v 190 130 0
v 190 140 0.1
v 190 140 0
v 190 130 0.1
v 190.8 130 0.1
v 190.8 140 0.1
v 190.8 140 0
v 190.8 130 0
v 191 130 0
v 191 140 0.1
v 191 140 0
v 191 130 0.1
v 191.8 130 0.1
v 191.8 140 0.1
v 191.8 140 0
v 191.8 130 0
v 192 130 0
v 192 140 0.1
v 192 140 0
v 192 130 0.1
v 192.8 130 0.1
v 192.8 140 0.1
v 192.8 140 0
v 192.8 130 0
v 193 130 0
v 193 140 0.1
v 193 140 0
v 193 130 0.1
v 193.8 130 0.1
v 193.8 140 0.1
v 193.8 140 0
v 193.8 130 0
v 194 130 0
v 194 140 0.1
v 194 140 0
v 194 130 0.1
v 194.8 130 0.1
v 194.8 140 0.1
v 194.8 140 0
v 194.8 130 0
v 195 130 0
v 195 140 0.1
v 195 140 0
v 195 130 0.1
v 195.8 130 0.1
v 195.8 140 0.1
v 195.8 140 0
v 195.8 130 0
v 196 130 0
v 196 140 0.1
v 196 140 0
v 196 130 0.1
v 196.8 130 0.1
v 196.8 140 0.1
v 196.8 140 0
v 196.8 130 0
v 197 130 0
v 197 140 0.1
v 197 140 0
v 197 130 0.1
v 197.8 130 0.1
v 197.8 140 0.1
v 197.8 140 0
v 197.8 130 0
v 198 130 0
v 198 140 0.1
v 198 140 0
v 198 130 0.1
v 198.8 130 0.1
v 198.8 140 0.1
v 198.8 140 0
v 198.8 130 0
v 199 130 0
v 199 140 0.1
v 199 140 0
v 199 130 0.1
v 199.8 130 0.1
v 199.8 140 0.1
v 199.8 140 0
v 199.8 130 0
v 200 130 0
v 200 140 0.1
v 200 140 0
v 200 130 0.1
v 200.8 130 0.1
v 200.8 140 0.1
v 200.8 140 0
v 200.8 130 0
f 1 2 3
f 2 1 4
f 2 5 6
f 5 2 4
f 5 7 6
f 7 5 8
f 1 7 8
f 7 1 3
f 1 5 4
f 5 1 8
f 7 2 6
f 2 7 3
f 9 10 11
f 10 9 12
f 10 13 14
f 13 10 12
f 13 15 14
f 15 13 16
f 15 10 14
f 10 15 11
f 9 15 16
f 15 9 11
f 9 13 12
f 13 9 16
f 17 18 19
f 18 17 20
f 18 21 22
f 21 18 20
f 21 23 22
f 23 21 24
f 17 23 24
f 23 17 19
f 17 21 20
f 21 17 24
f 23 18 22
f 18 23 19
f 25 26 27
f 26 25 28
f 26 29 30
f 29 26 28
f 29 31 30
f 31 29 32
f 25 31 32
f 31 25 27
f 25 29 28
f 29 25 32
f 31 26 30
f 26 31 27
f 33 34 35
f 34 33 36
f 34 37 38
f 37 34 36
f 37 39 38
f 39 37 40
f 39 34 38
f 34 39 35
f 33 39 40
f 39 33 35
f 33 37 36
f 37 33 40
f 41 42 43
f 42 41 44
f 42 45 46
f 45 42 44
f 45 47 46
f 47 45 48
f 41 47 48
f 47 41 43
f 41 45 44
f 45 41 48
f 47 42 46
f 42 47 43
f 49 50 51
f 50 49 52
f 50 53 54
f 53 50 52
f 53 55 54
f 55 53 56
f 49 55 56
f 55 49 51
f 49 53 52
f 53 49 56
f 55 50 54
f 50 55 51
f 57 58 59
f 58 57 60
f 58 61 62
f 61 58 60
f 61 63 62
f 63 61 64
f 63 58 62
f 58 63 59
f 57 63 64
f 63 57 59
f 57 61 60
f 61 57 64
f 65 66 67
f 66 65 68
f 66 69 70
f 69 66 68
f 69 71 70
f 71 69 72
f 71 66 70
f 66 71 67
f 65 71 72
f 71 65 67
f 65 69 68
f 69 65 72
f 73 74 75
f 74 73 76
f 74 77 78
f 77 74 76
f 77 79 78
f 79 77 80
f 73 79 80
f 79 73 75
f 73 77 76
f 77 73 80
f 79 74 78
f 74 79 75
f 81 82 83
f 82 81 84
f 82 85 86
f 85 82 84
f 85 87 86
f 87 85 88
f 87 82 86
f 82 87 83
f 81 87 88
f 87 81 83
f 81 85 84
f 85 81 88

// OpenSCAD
translate([10+180,10+120,0])
        for (i = [0 : 10]){
            translate([i,0,0])
                cube(size = [0.8,10,0.1]);
    }
